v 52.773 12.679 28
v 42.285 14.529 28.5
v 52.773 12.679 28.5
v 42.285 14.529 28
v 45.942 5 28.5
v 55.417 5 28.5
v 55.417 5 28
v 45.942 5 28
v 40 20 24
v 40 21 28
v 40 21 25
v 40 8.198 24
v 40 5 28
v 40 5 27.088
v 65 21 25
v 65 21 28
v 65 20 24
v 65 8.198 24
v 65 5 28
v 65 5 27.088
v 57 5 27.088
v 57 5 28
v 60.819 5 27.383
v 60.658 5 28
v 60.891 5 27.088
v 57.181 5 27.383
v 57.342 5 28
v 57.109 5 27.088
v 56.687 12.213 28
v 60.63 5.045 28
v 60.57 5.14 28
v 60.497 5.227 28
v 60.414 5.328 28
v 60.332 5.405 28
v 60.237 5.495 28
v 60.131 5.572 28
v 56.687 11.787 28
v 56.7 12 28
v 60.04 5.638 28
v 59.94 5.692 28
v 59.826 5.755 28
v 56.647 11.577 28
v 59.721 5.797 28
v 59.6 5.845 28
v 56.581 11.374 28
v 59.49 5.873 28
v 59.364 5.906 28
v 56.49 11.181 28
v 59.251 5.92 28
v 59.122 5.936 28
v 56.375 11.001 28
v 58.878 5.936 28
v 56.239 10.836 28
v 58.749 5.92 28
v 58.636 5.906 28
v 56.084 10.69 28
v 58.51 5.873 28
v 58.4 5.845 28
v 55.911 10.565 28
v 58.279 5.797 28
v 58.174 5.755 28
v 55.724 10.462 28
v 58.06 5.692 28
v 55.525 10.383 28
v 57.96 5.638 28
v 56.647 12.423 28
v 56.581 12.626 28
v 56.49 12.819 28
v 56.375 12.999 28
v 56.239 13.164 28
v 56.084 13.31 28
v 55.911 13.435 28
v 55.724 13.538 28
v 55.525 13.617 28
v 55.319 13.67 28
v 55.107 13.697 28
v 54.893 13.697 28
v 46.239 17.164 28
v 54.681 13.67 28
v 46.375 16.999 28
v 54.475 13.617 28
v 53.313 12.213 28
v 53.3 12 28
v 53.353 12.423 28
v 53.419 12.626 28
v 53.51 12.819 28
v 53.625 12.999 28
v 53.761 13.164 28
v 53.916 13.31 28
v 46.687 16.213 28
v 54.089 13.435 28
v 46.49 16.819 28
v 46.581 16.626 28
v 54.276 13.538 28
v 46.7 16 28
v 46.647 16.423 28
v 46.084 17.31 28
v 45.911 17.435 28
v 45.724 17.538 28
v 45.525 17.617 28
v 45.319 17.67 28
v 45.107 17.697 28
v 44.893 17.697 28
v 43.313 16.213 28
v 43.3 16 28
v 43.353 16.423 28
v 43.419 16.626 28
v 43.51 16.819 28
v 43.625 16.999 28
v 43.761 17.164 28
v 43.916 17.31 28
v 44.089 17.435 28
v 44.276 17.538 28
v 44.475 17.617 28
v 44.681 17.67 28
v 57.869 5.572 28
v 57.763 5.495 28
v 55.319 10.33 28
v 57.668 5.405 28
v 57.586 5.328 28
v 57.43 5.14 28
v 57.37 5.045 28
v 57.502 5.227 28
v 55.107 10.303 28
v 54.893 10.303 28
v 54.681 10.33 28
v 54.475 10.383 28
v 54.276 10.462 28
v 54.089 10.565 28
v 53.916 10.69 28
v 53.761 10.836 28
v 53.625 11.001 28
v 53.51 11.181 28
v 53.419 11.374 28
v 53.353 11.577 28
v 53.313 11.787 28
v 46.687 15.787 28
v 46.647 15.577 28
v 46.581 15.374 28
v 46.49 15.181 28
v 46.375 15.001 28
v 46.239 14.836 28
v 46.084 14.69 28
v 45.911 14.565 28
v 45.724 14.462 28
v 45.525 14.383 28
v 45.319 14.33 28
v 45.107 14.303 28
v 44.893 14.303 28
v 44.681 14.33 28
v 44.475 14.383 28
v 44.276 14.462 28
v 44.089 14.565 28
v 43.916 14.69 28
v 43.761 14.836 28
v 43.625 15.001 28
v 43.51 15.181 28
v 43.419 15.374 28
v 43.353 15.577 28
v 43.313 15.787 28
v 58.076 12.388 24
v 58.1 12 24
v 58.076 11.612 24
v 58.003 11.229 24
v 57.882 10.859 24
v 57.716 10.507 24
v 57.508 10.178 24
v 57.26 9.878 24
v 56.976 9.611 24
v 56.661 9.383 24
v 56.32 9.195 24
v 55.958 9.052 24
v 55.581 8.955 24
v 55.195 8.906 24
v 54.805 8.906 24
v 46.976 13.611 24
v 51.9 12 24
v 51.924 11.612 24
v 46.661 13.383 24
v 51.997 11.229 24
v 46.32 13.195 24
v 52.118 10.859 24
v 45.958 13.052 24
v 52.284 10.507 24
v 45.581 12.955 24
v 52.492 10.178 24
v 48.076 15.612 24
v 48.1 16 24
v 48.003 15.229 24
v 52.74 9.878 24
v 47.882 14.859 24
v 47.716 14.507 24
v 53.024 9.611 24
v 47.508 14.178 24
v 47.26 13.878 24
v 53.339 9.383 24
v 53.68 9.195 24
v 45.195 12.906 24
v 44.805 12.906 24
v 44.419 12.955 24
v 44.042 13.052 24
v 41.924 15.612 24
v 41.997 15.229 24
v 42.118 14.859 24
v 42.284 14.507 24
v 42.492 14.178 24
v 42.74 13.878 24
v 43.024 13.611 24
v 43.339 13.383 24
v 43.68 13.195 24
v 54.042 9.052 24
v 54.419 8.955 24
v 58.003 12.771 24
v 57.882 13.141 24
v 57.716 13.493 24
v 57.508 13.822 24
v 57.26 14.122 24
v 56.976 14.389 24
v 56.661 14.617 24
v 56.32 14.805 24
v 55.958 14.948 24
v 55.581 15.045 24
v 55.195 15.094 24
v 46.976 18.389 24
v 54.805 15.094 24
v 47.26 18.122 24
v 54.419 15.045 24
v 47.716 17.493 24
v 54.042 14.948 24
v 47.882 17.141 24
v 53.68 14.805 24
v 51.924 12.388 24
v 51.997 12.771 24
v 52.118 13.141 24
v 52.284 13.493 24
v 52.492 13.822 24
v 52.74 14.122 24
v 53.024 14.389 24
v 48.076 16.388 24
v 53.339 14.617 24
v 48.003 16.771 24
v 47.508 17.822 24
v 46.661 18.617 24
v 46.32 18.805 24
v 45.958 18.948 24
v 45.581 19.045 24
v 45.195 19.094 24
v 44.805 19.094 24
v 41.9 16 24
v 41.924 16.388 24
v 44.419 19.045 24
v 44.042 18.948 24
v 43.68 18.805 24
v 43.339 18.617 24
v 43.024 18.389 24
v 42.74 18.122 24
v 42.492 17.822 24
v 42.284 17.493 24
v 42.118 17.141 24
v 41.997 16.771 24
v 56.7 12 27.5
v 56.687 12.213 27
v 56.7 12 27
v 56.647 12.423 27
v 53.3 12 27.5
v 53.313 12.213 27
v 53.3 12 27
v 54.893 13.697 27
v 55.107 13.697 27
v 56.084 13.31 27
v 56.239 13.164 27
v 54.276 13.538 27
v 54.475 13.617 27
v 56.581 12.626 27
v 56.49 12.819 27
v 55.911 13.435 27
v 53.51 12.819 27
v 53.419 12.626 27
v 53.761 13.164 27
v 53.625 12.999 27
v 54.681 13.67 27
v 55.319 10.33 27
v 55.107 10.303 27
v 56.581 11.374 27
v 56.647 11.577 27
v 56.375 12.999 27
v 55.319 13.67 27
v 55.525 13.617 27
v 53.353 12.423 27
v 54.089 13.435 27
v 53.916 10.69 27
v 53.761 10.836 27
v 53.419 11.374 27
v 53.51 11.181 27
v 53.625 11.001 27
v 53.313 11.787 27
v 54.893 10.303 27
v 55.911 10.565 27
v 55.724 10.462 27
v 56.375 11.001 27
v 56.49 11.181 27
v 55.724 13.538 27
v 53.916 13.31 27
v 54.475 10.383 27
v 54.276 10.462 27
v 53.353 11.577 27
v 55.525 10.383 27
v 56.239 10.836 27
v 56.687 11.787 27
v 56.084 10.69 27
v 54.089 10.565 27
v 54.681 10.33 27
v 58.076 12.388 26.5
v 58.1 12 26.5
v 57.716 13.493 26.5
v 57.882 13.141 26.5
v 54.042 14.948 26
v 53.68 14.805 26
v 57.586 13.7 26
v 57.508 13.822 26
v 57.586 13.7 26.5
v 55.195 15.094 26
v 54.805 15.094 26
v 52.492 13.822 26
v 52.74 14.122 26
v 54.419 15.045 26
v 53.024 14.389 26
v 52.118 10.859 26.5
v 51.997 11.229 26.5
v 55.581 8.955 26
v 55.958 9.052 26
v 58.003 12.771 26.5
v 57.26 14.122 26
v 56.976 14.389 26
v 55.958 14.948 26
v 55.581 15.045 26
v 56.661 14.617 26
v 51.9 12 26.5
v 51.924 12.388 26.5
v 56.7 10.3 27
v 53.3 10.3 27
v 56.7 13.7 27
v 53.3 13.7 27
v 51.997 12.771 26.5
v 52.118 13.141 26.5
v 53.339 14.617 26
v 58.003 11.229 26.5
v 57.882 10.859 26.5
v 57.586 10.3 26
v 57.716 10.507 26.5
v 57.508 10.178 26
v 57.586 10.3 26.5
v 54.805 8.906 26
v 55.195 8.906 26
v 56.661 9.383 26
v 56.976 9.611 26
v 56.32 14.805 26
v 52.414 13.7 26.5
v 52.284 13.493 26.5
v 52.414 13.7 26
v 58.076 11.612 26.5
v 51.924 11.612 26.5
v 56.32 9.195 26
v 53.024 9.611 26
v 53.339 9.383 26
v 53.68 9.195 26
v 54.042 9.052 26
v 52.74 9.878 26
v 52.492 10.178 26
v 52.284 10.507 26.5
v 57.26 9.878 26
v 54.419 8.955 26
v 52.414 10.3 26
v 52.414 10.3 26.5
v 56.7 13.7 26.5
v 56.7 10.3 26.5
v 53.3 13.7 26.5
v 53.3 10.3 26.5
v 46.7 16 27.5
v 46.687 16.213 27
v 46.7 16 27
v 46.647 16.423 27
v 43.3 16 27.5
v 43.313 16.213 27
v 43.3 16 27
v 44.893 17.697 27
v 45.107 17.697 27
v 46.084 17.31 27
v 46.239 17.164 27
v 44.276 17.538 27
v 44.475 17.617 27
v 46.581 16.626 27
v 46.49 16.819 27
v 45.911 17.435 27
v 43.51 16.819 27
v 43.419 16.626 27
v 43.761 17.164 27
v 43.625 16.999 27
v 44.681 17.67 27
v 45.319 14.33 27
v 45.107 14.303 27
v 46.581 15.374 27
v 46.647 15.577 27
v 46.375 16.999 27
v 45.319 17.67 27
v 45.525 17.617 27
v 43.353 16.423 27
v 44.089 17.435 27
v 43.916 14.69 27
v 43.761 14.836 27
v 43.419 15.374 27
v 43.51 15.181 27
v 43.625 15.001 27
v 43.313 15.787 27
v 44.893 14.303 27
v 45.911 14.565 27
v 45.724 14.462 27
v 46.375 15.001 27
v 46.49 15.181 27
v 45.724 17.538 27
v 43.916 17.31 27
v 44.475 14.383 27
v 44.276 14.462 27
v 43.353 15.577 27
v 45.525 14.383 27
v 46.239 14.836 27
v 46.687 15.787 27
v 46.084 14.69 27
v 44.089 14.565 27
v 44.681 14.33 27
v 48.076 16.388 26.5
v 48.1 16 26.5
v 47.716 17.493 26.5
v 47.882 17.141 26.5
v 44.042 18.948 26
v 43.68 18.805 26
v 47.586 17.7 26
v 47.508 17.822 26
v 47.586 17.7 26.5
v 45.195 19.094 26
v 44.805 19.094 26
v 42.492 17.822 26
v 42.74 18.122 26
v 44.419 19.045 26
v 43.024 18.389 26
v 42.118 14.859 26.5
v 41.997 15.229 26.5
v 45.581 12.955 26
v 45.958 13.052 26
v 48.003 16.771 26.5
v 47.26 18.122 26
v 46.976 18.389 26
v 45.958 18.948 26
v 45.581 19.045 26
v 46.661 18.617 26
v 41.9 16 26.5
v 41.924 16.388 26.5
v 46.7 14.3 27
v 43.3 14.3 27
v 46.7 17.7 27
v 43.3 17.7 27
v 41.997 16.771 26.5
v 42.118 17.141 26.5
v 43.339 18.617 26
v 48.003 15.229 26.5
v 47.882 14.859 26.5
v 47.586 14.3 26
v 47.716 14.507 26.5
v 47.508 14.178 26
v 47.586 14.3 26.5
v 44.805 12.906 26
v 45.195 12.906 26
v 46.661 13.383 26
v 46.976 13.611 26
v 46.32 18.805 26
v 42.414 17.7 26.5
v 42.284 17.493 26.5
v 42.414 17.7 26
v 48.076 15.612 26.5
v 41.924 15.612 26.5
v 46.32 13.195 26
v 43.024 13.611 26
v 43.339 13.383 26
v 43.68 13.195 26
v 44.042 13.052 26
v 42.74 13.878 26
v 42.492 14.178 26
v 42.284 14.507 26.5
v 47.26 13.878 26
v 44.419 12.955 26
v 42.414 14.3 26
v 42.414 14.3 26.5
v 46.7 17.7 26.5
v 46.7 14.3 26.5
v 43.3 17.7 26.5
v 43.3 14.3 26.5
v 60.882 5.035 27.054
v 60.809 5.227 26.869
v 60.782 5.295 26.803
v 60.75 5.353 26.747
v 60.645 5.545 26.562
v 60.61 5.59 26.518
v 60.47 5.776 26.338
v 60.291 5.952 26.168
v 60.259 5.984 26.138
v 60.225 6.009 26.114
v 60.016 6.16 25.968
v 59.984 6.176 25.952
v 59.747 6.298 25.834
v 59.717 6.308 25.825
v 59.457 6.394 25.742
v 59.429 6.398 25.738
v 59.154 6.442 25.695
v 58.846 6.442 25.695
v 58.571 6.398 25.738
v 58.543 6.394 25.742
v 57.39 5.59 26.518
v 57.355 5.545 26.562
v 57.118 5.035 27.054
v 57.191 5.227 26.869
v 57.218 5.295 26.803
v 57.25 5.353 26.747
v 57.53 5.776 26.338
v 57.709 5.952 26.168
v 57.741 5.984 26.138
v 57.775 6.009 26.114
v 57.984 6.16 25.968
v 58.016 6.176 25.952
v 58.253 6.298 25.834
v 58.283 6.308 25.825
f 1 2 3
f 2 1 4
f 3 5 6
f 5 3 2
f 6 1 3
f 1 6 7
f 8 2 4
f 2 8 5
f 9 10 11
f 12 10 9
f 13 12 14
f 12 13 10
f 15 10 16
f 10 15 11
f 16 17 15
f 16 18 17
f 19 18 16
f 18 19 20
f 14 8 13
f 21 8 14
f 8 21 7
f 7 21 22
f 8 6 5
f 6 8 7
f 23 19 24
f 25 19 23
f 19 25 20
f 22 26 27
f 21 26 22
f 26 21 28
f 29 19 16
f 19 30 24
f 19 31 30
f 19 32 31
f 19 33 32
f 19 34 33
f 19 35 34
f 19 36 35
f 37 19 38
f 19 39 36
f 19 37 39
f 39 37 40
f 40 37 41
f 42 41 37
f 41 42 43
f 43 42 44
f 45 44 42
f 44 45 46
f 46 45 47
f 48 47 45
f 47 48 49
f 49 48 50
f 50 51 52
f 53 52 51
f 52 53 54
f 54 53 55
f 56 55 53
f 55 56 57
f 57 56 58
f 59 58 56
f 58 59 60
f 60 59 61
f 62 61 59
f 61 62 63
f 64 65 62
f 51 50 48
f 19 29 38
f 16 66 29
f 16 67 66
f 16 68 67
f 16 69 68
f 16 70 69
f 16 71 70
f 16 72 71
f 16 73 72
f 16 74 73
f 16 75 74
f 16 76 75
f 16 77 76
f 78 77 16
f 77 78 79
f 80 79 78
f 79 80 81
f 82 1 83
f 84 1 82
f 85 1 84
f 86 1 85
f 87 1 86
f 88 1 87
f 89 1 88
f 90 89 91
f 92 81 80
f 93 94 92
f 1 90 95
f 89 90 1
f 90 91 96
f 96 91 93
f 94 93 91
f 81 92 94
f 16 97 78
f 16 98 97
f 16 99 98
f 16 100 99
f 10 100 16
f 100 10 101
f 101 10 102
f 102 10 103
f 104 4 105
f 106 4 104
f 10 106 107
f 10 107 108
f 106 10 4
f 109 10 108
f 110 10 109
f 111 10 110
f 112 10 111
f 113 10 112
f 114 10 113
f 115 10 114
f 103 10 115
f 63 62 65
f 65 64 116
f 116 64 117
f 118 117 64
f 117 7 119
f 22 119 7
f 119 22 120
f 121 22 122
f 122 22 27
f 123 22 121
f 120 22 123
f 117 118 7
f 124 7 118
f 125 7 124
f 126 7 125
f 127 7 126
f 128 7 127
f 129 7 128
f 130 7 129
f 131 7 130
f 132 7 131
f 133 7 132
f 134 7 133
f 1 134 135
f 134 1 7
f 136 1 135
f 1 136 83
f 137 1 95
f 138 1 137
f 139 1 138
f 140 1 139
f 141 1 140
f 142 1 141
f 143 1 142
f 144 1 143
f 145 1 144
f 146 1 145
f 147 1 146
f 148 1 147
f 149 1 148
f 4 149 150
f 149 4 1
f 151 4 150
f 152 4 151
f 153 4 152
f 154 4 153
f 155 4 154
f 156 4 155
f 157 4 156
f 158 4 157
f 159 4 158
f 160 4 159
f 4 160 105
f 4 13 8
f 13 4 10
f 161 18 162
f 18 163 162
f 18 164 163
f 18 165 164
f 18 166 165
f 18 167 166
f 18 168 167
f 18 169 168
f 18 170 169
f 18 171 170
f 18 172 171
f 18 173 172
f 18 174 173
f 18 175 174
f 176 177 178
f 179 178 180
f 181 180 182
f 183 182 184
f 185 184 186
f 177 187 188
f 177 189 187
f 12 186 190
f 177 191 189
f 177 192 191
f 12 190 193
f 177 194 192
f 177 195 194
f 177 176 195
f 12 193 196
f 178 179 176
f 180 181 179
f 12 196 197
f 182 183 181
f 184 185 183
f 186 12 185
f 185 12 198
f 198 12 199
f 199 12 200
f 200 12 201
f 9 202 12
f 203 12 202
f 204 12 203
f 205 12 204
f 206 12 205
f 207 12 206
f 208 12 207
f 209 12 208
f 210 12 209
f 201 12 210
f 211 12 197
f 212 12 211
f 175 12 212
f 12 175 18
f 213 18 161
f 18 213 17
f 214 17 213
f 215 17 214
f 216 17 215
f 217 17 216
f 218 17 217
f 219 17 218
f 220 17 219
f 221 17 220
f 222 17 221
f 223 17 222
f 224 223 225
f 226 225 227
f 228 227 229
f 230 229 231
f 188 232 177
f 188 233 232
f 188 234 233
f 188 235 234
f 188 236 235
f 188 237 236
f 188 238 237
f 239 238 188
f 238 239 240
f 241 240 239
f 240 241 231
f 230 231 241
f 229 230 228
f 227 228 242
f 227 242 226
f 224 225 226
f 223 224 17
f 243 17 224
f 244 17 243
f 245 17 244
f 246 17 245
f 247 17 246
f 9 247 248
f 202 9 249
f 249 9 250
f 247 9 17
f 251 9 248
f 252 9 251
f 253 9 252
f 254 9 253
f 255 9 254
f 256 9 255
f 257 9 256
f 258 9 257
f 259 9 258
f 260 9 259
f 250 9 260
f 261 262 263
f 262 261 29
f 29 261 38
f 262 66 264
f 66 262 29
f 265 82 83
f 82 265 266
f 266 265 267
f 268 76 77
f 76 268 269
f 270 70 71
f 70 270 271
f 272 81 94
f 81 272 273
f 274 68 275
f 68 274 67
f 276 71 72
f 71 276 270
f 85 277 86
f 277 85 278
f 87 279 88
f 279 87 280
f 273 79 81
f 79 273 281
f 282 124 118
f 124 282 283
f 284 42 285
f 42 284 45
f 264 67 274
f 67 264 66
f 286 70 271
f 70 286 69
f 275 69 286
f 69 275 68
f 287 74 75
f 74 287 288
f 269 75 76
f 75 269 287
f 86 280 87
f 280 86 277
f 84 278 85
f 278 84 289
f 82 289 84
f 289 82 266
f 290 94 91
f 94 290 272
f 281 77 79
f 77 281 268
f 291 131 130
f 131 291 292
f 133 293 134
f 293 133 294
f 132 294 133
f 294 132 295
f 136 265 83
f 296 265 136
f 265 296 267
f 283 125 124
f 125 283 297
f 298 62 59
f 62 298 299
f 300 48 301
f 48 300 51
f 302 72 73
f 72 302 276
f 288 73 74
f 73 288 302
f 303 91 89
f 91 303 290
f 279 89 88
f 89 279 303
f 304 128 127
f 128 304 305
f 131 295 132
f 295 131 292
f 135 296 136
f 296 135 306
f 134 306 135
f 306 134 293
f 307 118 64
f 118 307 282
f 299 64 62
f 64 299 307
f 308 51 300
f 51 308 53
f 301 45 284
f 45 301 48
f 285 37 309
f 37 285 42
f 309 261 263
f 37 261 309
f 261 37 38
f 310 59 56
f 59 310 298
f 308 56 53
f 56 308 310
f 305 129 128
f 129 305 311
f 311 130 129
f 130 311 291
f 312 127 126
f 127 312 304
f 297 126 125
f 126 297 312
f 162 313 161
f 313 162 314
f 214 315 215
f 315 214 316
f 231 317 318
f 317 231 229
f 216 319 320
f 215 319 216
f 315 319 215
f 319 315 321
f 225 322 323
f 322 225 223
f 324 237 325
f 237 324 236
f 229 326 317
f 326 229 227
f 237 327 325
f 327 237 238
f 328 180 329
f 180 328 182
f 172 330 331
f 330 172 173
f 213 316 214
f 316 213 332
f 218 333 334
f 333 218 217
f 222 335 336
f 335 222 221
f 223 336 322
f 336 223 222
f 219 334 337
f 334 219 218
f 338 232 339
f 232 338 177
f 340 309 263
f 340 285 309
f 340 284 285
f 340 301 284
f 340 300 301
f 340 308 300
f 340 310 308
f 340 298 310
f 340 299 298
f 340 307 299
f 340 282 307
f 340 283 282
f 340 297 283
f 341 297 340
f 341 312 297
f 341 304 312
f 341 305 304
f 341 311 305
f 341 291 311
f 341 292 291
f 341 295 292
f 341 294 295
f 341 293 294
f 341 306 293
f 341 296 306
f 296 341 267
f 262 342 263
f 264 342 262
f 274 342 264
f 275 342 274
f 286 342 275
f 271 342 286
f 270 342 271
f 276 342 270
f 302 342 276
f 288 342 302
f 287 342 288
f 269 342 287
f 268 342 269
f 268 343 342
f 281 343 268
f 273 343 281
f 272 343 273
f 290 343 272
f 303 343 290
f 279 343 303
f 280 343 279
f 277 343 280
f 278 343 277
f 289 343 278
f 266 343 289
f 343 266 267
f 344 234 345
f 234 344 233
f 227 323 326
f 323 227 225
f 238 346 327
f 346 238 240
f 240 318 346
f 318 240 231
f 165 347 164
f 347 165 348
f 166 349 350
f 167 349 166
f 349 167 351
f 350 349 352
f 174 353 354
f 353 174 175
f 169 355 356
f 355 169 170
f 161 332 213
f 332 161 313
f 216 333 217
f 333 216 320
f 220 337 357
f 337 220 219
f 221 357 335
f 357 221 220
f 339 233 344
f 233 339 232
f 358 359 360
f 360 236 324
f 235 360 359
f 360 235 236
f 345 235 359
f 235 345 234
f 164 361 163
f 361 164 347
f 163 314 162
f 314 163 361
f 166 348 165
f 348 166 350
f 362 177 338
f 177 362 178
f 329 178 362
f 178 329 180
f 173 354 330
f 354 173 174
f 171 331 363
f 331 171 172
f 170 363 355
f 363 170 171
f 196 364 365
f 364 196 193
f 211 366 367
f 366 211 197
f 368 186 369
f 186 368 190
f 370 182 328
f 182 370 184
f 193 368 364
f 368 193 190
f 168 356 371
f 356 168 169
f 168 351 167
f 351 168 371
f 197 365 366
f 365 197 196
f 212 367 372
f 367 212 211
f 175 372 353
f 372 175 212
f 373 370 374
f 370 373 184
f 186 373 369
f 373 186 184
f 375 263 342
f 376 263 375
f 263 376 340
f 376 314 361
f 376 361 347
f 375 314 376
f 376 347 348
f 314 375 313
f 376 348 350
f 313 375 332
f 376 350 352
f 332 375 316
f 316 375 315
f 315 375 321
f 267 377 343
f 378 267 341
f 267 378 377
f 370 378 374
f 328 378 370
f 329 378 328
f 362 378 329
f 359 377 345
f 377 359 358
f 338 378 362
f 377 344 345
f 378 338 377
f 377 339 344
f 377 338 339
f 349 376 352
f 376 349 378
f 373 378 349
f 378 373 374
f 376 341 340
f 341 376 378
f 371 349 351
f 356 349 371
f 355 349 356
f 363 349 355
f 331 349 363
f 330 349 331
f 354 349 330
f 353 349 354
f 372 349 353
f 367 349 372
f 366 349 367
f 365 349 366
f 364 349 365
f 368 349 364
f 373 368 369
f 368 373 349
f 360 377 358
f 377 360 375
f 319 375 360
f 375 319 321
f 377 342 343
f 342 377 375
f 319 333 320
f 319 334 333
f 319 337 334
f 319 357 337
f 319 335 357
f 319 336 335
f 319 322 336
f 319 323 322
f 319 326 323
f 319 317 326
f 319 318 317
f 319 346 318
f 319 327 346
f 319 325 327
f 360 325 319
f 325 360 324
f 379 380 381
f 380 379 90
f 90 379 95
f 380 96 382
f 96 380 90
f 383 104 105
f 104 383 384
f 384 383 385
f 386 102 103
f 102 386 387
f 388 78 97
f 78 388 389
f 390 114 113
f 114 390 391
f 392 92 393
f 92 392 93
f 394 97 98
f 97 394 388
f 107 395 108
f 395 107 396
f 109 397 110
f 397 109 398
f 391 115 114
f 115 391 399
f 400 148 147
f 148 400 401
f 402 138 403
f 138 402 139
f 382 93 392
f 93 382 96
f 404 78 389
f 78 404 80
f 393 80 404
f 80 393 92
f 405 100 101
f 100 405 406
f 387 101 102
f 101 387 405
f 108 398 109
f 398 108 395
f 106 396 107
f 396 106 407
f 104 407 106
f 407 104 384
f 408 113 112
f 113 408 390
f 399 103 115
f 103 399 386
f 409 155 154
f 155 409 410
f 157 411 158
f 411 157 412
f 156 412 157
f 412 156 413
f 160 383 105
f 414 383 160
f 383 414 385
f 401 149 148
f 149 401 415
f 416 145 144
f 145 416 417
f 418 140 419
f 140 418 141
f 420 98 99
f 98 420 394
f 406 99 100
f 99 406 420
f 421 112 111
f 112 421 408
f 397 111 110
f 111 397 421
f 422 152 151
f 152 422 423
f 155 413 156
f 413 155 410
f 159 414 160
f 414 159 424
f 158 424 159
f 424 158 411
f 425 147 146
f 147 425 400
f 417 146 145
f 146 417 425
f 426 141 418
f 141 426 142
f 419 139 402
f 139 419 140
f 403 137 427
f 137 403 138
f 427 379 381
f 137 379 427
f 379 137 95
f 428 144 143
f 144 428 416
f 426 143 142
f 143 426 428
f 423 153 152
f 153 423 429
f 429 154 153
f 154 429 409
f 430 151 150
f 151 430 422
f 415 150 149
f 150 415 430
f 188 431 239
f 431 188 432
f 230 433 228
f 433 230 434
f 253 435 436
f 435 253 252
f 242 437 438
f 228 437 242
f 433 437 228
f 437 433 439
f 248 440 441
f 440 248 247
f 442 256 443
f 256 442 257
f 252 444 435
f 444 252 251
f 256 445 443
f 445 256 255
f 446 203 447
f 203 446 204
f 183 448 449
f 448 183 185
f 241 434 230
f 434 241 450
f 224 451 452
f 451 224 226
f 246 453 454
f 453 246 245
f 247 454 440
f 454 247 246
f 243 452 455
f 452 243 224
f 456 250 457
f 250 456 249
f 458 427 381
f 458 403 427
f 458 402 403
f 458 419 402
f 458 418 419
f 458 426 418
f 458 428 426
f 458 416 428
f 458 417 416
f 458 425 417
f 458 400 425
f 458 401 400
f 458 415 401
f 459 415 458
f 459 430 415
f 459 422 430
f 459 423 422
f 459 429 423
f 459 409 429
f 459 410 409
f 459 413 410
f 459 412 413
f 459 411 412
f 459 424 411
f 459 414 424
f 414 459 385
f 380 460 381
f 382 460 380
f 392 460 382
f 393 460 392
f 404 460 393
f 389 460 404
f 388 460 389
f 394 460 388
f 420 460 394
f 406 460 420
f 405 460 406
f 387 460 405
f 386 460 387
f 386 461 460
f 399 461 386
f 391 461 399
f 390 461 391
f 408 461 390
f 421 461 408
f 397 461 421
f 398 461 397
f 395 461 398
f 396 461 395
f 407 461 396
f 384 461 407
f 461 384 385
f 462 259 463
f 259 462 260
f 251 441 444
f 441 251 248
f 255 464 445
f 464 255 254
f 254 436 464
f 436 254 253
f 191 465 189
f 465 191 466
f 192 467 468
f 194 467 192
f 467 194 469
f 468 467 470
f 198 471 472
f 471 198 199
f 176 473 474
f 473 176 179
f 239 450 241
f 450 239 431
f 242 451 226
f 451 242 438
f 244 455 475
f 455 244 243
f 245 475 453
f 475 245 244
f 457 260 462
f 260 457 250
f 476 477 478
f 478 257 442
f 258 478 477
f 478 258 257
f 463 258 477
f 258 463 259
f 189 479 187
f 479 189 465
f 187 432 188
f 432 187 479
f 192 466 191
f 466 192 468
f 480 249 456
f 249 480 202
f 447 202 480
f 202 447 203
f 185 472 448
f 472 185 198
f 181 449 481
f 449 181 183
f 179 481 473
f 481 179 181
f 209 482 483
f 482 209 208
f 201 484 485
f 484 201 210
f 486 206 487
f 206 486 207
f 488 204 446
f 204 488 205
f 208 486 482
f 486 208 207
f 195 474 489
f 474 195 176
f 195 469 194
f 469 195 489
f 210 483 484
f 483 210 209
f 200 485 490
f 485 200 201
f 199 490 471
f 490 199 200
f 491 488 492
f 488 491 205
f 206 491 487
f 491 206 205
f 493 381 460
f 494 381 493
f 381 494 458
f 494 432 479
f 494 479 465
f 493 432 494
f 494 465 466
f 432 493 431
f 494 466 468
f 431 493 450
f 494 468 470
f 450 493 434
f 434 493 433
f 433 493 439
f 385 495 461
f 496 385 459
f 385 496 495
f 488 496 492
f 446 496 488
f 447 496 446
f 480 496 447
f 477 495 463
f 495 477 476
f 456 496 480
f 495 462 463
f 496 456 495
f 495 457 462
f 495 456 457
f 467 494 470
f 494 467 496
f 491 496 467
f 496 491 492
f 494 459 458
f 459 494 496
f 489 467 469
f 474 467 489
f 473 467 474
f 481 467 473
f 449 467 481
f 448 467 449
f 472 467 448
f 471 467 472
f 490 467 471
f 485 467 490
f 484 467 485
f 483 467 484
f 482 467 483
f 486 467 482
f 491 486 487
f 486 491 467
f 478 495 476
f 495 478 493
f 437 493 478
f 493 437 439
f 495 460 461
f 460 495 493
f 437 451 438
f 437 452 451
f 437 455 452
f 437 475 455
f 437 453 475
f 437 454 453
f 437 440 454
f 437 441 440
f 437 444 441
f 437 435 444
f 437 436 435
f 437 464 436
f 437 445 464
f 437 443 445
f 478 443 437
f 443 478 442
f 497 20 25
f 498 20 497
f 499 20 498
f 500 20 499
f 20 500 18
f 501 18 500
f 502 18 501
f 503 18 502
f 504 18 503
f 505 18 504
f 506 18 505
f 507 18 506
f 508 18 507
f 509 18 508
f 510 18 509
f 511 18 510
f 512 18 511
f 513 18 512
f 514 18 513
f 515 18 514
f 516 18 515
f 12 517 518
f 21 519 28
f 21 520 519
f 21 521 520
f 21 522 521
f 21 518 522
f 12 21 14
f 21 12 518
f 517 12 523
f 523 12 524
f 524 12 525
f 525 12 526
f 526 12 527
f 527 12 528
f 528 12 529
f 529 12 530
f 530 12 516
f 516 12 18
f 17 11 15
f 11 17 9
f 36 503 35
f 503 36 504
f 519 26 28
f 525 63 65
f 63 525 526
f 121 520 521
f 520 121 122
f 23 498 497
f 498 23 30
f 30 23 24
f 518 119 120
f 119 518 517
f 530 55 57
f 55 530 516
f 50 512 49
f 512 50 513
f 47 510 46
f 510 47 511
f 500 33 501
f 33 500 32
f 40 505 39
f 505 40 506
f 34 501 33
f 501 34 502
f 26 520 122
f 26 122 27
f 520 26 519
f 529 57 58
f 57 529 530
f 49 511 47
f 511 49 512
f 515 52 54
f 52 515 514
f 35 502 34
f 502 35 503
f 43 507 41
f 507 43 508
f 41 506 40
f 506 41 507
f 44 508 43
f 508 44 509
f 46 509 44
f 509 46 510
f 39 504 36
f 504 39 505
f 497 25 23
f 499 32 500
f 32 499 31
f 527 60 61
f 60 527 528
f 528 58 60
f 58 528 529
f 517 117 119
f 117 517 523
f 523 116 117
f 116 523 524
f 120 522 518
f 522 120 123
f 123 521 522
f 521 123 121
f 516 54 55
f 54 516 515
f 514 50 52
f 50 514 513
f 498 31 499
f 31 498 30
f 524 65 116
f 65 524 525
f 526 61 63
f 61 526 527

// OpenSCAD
// PRUSA MMU2
// blade-holder
// GNU GPL v3
// Josef Průša <iam@josefprusa.cz> and contributors
// http://www.reprap.org/wiki/Prusa_Mendel
// http://prusamendel.org

module blade()
{
        difference()
        {
            translate([0,0.0,-0.1]) cube([17,1,9]);
            translate([11.4,-0.4,10]) rotate([0,61,0]) cube([21,1.5,9]);
            translate([-9.2,-0.4,9]) rotate([0,59,0]) cube([21,1.5,9]);
        }
}

module screw()
{
    difference()
    {
        union()
        {
            translate([0,0,0]) rotate([90,0,0]) cylinder(r=1.7, h=10, $fn=50); 
            translate([0,0,0]) rotate([90,0,0]) cylinder(r=3.1, h=4, $fn=50); 
        }

        translate([0+1.7,-4.5,-5]) cube([5,1,10]); 
        translate([-5-1.7,-4.5,-5]) cube([5,1,10]); 
        translate([-5,-5,-5-1.7]) cube([10,2,5]); 
        translate([-5,-5,1.7]) cube([10,2,5]); 
    }
}


module blade_holder()
{
    difference()
    {
        union()
        {
        // base shape
        translate([40,-28,5]) cube([25,4,16]);
        translate([39.4,-27.75-0.75,6.0]) rotate([0,10.0,0]) blade();
        }
        
        // screws
        translate([55,-23,12]) screw();
        translate([45,-23,16]) screw();
        
        // blade cleanup
        translate([40,-28.5,-4]) cube([17,2,9]);
        
        // edges
        translate([38,-24,1]) rotate([46,0,0]) cube([30,7,5]);
        translate([38,-23,19]) rotate([45,0,0]) cube([30,5,5]);
        
        // filament path
        translate([59,-25,4]) rotate([90,0,0]) cylinder(r2=1.5, r1=2.6,, h=5, $fn=50); 
        
    }
    
    
}
rotate([-90,0,0]) 
blade_holder();
